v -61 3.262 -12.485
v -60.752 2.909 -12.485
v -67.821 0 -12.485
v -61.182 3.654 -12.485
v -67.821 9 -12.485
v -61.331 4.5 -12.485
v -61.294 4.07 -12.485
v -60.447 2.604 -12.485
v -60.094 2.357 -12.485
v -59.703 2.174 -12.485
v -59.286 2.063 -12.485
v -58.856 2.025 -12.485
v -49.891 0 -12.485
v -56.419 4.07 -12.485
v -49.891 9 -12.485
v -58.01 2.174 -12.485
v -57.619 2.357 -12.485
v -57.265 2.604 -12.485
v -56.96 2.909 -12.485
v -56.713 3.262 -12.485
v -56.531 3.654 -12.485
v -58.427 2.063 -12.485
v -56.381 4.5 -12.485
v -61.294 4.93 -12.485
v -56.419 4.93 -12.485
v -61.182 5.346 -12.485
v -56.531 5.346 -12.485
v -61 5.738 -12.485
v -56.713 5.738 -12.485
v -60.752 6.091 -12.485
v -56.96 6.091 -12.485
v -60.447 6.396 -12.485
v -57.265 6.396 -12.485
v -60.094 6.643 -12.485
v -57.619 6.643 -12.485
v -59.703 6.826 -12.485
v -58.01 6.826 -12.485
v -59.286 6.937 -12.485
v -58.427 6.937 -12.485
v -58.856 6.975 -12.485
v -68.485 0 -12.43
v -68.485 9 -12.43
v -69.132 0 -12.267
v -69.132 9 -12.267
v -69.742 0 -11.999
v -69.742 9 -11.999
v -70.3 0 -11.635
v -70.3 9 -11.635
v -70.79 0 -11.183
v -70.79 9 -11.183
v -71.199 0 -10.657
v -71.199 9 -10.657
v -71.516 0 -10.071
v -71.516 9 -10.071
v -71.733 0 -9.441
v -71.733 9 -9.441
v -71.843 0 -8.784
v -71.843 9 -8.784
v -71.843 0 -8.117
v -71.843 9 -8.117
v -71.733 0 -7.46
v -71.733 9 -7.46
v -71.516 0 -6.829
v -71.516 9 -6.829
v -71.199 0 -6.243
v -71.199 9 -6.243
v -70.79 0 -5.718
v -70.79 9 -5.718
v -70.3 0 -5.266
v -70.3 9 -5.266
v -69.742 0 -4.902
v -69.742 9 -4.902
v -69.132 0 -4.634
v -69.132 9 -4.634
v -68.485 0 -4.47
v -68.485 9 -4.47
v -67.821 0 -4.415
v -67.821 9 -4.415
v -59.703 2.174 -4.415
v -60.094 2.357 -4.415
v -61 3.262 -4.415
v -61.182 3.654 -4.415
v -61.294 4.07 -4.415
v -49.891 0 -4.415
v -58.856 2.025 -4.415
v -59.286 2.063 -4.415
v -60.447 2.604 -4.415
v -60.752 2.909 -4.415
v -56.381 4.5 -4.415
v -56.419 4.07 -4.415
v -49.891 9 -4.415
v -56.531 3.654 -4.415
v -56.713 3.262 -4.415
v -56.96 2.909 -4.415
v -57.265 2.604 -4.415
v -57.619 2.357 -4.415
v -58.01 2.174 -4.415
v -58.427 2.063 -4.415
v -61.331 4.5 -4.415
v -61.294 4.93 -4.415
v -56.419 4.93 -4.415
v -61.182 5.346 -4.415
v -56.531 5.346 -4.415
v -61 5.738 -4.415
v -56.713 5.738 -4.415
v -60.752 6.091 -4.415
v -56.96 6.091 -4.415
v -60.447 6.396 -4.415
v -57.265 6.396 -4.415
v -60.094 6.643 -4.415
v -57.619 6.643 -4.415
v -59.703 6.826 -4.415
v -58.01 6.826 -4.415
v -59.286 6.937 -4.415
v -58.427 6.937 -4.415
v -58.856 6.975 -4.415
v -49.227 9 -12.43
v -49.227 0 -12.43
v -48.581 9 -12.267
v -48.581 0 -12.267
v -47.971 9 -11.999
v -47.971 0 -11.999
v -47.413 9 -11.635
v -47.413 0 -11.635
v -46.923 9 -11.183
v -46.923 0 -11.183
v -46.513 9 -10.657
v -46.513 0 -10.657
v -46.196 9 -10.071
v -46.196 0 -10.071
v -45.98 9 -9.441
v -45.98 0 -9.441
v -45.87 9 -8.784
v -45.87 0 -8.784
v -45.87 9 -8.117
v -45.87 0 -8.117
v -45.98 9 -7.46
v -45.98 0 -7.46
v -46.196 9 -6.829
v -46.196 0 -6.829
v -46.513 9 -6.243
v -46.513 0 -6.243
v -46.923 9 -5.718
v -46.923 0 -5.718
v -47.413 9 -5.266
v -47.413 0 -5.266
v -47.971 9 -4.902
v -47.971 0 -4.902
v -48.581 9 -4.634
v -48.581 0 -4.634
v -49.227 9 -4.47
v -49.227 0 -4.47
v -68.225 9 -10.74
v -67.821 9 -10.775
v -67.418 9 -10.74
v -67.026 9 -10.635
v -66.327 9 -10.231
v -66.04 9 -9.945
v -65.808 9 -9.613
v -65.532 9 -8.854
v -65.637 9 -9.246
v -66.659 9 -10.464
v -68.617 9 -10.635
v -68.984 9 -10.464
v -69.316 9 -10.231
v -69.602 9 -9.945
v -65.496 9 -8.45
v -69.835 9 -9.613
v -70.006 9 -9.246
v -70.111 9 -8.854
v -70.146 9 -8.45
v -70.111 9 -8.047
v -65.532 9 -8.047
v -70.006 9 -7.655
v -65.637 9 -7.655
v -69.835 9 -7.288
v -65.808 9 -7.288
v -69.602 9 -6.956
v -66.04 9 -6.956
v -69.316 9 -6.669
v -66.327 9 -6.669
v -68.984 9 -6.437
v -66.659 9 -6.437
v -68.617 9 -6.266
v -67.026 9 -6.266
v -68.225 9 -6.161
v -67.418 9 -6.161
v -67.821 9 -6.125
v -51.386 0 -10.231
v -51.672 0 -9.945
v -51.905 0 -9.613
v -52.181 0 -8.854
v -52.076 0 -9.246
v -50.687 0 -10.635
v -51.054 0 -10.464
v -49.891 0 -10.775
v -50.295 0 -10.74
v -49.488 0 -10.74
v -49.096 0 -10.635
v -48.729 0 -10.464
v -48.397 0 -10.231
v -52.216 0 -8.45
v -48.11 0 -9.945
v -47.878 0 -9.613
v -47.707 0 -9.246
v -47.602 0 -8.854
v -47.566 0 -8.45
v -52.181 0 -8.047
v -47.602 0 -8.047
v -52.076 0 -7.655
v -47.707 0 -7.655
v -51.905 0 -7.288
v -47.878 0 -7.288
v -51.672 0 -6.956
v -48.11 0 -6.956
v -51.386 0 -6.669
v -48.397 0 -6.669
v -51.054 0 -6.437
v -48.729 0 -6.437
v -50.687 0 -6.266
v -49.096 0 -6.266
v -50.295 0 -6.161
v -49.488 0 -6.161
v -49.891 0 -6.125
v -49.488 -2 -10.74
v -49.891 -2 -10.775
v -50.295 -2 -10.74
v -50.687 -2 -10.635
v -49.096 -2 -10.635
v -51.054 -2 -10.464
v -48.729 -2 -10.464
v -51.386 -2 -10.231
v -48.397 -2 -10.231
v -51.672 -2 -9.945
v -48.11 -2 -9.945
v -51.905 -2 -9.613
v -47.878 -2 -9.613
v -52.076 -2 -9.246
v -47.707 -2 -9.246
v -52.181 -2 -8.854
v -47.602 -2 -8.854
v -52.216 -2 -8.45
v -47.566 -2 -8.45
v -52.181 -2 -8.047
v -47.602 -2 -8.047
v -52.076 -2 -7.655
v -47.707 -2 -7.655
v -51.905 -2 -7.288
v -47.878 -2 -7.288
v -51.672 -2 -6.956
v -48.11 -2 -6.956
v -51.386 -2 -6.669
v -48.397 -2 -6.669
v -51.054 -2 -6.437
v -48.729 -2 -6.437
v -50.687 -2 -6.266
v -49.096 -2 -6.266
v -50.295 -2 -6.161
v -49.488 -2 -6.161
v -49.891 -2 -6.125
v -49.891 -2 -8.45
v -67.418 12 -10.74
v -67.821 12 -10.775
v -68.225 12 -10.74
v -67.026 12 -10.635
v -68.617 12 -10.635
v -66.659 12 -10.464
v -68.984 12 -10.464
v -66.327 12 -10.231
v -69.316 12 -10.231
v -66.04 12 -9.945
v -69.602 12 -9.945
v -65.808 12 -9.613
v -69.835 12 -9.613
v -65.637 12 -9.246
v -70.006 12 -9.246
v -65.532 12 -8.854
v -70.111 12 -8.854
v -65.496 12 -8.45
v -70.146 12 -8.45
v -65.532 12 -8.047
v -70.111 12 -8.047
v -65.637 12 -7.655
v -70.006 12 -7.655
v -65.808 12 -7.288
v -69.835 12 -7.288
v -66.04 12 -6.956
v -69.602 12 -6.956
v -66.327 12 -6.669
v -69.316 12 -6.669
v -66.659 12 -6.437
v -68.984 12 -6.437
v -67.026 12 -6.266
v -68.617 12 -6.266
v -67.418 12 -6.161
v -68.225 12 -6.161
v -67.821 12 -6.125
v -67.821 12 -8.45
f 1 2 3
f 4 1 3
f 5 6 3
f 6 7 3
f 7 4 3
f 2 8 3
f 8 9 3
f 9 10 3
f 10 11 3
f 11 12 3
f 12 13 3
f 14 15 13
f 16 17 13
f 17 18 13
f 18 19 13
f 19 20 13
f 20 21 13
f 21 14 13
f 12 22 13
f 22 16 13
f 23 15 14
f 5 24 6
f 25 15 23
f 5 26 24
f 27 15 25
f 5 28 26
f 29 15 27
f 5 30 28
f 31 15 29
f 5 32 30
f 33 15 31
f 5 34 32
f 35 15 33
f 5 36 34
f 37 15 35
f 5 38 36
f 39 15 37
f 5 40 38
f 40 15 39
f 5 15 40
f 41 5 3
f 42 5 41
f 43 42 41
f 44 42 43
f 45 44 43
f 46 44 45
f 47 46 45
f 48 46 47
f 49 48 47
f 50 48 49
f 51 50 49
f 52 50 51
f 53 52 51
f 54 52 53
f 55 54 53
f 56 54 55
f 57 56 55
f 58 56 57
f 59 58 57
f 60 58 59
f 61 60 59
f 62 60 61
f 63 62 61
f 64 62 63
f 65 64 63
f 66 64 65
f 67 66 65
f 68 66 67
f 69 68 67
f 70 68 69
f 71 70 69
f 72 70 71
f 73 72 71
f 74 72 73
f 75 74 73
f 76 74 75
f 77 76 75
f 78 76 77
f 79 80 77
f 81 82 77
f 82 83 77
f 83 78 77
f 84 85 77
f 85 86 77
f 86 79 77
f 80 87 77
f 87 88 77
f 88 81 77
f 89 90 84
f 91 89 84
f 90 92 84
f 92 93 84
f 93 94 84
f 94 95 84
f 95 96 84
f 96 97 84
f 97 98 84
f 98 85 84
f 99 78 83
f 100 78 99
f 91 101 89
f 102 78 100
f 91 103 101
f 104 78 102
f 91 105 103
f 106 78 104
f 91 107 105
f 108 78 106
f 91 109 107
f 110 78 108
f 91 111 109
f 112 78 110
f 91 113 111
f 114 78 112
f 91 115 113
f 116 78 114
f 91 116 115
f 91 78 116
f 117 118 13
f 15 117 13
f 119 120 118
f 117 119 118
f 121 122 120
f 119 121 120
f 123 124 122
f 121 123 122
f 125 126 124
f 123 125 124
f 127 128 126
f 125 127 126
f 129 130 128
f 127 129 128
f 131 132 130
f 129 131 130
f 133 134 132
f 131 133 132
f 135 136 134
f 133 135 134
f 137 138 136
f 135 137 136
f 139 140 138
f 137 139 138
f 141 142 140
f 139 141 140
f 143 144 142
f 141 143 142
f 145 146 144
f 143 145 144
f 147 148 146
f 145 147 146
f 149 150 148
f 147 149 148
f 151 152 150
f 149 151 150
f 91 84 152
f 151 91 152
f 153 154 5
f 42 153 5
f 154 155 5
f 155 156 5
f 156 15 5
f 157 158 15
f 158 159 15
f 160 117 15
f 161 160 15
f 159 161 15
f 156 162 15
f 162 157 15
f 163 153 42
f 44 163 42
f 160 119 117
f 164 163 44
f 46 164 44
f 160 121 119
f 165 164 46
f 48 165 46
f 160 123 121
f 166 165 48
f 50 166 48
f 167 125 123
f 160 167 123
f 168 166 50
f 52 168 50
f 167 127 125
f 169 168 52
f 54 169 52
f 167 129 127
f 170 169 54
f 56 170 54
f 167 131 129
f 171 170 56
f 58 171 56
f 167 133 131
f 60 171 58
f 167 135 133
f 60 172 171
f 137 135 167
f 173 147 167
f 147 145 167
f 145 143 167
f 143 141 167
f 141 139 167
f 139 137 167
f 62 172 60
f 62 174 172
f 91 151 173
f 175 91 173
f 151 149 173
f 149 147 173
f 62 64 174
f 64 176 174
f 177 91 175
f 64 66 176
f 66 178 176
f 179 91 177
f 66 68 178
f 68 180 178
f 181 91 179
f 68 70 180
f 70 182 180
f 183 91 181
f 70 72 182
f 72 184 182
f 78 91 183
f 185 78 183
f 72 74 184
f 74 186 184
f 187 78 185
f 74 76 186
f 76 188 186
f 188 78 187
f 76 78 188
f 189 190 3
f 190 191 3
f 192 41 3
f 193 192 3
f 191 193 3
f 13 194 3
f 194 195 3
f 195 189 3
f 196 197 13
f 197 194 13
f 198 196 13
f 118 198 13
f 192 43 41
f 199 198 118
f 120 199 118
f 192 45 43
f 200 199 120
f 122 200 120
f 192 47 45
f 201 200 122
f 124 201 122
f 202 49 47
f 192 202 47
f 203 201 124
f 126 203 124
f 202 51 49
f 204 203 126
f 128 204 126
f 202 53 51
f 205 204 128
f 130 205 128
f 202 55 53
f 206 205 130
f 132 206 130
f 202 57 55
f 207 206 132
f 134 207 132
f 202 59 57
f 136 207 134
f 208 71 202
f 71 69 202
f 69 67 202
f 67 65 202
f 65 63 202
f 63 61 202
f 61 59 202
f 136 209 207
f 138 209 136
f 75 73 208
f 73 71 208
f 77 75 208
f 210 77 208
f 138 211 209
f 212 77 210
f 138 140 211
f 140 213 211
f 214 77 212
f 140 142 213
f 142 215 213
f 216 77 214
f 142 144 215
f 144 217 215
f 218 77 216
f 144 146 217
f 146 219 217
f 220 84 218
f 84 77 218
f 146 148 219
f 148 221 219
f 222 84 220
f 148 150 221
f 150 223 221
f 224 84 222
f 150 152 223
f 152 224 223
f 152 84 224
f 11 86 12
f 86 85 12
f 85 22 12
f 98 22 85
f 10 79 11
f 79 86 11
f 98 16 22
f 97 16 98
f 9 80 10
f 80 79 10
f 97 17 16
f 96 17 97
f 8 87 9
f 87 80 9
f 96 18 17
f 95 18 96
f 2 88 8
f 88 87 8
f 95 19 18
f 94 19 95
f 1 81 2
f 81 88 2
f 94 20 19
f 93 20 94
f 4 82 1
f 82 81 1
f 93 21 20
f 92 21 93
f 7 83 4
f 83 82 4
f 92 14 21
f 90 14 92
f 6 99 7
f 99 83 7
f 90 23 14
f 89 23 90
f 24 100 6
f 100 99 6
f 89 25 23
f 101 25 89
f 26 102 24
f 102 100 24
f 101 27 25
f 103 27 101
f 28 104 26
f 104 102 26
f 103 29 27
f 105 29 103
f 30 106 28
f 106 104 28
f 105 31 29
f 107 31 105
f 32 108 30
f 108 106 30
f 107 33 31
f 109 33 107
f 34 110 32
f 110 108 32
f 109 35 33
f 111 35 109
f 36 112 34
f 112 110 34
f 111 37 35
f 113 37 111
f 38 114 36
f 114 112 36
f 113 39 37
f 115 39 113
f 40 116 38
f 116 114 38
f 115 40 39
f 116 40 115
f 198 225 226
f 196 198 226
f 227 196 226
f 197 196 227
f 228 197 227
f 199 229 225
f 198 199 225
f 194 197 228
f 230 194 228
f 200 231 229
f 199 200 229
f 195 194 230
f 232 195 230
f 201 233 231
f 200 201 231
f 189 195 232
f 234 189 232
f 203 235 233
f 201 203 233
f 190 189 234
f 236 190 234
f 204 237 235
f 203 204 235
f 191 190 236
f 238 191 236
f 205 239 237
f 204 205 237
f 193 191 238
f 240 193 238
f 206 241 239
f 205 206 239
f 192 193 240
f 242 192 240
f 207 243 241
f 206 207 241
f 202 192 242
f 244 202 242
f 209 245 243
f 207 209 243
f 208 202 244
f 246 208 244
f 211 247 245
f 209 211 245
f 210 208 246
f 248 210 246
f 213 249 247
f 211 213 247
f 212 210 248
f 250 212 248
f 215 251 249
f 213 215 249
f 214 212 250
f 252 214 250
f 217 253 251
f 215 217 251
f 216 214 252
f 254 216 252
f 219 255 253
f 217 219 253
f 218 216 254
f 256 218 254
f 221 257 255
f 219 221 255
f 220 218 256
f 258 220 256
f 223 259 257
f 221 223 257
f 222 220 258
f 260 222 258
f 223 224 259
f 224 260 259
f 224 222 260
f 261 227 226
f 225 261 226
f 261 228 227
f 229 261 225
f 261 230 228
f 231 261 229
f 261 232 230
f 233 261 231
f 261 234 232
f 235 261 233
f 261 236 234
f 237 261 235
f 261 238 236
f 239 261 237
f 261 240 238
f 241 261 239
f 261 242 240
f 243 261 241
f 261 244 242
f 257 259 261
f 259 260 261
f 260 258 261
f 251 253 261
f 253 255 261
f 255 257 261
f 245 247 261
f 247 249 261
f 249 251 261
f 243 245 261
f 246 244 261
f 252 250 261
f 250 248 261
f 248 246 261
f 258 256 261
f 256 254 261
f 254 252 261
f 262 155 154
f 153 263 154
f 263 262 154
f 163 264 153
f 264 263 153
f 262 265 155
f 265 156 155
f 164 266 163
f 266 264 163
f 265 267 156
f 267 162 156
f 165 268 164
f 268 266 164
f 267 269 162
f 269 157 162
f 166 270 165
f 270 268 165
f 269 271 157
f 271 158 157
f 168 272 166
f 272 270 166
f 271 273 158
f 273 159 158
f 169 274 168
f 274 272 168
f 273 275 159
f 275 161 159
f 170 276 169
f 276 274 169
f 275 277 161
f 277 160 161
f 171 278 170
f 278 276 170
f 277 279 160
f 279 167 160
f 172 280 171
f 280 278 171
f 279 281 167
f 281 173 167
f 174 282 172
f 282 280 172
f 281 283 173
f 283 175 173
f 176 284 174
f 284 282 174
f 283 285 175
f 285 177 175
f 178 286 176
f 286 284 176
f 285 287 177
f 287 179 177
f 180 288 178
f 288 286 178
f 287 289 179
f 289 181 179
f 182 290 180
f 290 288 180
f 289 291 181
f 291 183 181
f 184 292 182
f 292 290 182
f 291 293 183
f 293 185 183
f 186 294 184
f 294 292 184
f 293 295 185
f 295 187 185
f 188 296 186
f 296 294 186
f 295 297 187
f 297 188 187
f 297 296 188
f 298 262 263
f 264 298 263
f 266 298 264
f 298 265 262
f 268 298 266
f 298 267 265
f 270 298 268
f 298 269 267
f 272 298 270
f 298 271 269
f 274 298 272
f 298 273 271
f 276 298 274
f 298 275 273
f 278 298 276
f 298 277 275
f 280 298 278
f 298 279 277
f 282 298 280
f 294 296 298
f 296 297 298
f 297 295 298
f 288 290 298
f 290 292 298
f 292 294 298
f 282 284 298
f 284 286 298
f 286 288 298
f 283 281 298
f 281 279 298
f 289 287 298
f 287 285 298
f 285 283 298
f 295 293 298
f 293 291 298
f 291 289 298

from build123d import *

# Parameters (mm, degrees)
BOSS_EXTRUDE2_DEPTH      = 9
CUT_EXTRUDE2_START       = -12.485338913
CUT_EXTRUDE2_OUTLINE_R   = 2.475
CUT_EXTRUDE2_DEPTH       = 8.07
BOSS_EXTRUDE3_DEPTH      = 9
BOSS_EXTRUDE3_DEPTH_BACK = 2
SKETCH1_6_R              = 2.325
SKETCH1_7_R              = 2.325
BOSS_EXTRUDE4_DEPTH      = 12


# Read off the part's stored shape, not the designer's step: Cut-Extrude2
with BuildPart() as part:
    # Sketch1 → Boss-Extrude2 (new body)
    with BuildSketch(Plane(origin=(0, 0, 0), x_dir=(1, 0, 0), z_dir=(0, 1, 0))):
        with BuildLine():
            Line((-49.891335879, 12.485338913), (-67.821335879, 12.485338913))
            ThreePointArc((-67.821335879, 12.485338913), (-71.856335879, 8.450338913), (-67.821335879, 4.415338913))
            Line((-67.821335879, 4.415338913), (-49.891335879, 4.415338913))
            ThreePointArc((-49.891335879, 4.415338913), (-45.856335879, 8.450338913), (-49.891335879, 12.485338913))
        make_face()
    extrude(amount=BOSS_EXTRUDE2_DEPTH)

    # Cut-Extrude2 outline → Cut-Extrude2 (cut)
    with BuildSketch(Plane.XY.offset(CUT_EXTRUDE2_START)):
        with Locations((-58.856335879, 4.5)):
            Circle(CUT_EXTRUDE2_OUTLINE_R)
    extrude(amount=CUT_EXTRUDE2_DEPTH, mode=Mode.SUBTRACT)

    # Sketch1<6> → Boss-Extrude3 (add, two sides: drawn at the far end of the back side and taken through both)
    with BuildSketch(Plane(origin=(0, 0, 0), x_dir=(1, 0, 0), z_dir=(0, 1, 0)).offset(-BOSS_EXTRUDE3_DEPTH_BACK)):
        with Locations(Location((-49.891335879, 8.450338913, 0), (0, 0, 270))):
            Circle(SKETCH1_6_R)
    extrude(amount=BOSS_EXTRUDE3_DEPTH + BOSS_EXTRUDE3_DEPTH_BACK)

    # Sketch1<7> → Boss-Extrude4 (add)
    with BuildSketch(Plane(origin=(0, 0, 0), x_dir=(1, 0, 0), z_dir=(0, 1, 0))):
        with Locations(Location((-67.821335879, 8.450338913, 0), (0, 0, 270))):
            Circle(SKETCH1_7_R)
    extrude(amount=BOSS_EXTRUDE4_DEPTH)


solid = part.part
